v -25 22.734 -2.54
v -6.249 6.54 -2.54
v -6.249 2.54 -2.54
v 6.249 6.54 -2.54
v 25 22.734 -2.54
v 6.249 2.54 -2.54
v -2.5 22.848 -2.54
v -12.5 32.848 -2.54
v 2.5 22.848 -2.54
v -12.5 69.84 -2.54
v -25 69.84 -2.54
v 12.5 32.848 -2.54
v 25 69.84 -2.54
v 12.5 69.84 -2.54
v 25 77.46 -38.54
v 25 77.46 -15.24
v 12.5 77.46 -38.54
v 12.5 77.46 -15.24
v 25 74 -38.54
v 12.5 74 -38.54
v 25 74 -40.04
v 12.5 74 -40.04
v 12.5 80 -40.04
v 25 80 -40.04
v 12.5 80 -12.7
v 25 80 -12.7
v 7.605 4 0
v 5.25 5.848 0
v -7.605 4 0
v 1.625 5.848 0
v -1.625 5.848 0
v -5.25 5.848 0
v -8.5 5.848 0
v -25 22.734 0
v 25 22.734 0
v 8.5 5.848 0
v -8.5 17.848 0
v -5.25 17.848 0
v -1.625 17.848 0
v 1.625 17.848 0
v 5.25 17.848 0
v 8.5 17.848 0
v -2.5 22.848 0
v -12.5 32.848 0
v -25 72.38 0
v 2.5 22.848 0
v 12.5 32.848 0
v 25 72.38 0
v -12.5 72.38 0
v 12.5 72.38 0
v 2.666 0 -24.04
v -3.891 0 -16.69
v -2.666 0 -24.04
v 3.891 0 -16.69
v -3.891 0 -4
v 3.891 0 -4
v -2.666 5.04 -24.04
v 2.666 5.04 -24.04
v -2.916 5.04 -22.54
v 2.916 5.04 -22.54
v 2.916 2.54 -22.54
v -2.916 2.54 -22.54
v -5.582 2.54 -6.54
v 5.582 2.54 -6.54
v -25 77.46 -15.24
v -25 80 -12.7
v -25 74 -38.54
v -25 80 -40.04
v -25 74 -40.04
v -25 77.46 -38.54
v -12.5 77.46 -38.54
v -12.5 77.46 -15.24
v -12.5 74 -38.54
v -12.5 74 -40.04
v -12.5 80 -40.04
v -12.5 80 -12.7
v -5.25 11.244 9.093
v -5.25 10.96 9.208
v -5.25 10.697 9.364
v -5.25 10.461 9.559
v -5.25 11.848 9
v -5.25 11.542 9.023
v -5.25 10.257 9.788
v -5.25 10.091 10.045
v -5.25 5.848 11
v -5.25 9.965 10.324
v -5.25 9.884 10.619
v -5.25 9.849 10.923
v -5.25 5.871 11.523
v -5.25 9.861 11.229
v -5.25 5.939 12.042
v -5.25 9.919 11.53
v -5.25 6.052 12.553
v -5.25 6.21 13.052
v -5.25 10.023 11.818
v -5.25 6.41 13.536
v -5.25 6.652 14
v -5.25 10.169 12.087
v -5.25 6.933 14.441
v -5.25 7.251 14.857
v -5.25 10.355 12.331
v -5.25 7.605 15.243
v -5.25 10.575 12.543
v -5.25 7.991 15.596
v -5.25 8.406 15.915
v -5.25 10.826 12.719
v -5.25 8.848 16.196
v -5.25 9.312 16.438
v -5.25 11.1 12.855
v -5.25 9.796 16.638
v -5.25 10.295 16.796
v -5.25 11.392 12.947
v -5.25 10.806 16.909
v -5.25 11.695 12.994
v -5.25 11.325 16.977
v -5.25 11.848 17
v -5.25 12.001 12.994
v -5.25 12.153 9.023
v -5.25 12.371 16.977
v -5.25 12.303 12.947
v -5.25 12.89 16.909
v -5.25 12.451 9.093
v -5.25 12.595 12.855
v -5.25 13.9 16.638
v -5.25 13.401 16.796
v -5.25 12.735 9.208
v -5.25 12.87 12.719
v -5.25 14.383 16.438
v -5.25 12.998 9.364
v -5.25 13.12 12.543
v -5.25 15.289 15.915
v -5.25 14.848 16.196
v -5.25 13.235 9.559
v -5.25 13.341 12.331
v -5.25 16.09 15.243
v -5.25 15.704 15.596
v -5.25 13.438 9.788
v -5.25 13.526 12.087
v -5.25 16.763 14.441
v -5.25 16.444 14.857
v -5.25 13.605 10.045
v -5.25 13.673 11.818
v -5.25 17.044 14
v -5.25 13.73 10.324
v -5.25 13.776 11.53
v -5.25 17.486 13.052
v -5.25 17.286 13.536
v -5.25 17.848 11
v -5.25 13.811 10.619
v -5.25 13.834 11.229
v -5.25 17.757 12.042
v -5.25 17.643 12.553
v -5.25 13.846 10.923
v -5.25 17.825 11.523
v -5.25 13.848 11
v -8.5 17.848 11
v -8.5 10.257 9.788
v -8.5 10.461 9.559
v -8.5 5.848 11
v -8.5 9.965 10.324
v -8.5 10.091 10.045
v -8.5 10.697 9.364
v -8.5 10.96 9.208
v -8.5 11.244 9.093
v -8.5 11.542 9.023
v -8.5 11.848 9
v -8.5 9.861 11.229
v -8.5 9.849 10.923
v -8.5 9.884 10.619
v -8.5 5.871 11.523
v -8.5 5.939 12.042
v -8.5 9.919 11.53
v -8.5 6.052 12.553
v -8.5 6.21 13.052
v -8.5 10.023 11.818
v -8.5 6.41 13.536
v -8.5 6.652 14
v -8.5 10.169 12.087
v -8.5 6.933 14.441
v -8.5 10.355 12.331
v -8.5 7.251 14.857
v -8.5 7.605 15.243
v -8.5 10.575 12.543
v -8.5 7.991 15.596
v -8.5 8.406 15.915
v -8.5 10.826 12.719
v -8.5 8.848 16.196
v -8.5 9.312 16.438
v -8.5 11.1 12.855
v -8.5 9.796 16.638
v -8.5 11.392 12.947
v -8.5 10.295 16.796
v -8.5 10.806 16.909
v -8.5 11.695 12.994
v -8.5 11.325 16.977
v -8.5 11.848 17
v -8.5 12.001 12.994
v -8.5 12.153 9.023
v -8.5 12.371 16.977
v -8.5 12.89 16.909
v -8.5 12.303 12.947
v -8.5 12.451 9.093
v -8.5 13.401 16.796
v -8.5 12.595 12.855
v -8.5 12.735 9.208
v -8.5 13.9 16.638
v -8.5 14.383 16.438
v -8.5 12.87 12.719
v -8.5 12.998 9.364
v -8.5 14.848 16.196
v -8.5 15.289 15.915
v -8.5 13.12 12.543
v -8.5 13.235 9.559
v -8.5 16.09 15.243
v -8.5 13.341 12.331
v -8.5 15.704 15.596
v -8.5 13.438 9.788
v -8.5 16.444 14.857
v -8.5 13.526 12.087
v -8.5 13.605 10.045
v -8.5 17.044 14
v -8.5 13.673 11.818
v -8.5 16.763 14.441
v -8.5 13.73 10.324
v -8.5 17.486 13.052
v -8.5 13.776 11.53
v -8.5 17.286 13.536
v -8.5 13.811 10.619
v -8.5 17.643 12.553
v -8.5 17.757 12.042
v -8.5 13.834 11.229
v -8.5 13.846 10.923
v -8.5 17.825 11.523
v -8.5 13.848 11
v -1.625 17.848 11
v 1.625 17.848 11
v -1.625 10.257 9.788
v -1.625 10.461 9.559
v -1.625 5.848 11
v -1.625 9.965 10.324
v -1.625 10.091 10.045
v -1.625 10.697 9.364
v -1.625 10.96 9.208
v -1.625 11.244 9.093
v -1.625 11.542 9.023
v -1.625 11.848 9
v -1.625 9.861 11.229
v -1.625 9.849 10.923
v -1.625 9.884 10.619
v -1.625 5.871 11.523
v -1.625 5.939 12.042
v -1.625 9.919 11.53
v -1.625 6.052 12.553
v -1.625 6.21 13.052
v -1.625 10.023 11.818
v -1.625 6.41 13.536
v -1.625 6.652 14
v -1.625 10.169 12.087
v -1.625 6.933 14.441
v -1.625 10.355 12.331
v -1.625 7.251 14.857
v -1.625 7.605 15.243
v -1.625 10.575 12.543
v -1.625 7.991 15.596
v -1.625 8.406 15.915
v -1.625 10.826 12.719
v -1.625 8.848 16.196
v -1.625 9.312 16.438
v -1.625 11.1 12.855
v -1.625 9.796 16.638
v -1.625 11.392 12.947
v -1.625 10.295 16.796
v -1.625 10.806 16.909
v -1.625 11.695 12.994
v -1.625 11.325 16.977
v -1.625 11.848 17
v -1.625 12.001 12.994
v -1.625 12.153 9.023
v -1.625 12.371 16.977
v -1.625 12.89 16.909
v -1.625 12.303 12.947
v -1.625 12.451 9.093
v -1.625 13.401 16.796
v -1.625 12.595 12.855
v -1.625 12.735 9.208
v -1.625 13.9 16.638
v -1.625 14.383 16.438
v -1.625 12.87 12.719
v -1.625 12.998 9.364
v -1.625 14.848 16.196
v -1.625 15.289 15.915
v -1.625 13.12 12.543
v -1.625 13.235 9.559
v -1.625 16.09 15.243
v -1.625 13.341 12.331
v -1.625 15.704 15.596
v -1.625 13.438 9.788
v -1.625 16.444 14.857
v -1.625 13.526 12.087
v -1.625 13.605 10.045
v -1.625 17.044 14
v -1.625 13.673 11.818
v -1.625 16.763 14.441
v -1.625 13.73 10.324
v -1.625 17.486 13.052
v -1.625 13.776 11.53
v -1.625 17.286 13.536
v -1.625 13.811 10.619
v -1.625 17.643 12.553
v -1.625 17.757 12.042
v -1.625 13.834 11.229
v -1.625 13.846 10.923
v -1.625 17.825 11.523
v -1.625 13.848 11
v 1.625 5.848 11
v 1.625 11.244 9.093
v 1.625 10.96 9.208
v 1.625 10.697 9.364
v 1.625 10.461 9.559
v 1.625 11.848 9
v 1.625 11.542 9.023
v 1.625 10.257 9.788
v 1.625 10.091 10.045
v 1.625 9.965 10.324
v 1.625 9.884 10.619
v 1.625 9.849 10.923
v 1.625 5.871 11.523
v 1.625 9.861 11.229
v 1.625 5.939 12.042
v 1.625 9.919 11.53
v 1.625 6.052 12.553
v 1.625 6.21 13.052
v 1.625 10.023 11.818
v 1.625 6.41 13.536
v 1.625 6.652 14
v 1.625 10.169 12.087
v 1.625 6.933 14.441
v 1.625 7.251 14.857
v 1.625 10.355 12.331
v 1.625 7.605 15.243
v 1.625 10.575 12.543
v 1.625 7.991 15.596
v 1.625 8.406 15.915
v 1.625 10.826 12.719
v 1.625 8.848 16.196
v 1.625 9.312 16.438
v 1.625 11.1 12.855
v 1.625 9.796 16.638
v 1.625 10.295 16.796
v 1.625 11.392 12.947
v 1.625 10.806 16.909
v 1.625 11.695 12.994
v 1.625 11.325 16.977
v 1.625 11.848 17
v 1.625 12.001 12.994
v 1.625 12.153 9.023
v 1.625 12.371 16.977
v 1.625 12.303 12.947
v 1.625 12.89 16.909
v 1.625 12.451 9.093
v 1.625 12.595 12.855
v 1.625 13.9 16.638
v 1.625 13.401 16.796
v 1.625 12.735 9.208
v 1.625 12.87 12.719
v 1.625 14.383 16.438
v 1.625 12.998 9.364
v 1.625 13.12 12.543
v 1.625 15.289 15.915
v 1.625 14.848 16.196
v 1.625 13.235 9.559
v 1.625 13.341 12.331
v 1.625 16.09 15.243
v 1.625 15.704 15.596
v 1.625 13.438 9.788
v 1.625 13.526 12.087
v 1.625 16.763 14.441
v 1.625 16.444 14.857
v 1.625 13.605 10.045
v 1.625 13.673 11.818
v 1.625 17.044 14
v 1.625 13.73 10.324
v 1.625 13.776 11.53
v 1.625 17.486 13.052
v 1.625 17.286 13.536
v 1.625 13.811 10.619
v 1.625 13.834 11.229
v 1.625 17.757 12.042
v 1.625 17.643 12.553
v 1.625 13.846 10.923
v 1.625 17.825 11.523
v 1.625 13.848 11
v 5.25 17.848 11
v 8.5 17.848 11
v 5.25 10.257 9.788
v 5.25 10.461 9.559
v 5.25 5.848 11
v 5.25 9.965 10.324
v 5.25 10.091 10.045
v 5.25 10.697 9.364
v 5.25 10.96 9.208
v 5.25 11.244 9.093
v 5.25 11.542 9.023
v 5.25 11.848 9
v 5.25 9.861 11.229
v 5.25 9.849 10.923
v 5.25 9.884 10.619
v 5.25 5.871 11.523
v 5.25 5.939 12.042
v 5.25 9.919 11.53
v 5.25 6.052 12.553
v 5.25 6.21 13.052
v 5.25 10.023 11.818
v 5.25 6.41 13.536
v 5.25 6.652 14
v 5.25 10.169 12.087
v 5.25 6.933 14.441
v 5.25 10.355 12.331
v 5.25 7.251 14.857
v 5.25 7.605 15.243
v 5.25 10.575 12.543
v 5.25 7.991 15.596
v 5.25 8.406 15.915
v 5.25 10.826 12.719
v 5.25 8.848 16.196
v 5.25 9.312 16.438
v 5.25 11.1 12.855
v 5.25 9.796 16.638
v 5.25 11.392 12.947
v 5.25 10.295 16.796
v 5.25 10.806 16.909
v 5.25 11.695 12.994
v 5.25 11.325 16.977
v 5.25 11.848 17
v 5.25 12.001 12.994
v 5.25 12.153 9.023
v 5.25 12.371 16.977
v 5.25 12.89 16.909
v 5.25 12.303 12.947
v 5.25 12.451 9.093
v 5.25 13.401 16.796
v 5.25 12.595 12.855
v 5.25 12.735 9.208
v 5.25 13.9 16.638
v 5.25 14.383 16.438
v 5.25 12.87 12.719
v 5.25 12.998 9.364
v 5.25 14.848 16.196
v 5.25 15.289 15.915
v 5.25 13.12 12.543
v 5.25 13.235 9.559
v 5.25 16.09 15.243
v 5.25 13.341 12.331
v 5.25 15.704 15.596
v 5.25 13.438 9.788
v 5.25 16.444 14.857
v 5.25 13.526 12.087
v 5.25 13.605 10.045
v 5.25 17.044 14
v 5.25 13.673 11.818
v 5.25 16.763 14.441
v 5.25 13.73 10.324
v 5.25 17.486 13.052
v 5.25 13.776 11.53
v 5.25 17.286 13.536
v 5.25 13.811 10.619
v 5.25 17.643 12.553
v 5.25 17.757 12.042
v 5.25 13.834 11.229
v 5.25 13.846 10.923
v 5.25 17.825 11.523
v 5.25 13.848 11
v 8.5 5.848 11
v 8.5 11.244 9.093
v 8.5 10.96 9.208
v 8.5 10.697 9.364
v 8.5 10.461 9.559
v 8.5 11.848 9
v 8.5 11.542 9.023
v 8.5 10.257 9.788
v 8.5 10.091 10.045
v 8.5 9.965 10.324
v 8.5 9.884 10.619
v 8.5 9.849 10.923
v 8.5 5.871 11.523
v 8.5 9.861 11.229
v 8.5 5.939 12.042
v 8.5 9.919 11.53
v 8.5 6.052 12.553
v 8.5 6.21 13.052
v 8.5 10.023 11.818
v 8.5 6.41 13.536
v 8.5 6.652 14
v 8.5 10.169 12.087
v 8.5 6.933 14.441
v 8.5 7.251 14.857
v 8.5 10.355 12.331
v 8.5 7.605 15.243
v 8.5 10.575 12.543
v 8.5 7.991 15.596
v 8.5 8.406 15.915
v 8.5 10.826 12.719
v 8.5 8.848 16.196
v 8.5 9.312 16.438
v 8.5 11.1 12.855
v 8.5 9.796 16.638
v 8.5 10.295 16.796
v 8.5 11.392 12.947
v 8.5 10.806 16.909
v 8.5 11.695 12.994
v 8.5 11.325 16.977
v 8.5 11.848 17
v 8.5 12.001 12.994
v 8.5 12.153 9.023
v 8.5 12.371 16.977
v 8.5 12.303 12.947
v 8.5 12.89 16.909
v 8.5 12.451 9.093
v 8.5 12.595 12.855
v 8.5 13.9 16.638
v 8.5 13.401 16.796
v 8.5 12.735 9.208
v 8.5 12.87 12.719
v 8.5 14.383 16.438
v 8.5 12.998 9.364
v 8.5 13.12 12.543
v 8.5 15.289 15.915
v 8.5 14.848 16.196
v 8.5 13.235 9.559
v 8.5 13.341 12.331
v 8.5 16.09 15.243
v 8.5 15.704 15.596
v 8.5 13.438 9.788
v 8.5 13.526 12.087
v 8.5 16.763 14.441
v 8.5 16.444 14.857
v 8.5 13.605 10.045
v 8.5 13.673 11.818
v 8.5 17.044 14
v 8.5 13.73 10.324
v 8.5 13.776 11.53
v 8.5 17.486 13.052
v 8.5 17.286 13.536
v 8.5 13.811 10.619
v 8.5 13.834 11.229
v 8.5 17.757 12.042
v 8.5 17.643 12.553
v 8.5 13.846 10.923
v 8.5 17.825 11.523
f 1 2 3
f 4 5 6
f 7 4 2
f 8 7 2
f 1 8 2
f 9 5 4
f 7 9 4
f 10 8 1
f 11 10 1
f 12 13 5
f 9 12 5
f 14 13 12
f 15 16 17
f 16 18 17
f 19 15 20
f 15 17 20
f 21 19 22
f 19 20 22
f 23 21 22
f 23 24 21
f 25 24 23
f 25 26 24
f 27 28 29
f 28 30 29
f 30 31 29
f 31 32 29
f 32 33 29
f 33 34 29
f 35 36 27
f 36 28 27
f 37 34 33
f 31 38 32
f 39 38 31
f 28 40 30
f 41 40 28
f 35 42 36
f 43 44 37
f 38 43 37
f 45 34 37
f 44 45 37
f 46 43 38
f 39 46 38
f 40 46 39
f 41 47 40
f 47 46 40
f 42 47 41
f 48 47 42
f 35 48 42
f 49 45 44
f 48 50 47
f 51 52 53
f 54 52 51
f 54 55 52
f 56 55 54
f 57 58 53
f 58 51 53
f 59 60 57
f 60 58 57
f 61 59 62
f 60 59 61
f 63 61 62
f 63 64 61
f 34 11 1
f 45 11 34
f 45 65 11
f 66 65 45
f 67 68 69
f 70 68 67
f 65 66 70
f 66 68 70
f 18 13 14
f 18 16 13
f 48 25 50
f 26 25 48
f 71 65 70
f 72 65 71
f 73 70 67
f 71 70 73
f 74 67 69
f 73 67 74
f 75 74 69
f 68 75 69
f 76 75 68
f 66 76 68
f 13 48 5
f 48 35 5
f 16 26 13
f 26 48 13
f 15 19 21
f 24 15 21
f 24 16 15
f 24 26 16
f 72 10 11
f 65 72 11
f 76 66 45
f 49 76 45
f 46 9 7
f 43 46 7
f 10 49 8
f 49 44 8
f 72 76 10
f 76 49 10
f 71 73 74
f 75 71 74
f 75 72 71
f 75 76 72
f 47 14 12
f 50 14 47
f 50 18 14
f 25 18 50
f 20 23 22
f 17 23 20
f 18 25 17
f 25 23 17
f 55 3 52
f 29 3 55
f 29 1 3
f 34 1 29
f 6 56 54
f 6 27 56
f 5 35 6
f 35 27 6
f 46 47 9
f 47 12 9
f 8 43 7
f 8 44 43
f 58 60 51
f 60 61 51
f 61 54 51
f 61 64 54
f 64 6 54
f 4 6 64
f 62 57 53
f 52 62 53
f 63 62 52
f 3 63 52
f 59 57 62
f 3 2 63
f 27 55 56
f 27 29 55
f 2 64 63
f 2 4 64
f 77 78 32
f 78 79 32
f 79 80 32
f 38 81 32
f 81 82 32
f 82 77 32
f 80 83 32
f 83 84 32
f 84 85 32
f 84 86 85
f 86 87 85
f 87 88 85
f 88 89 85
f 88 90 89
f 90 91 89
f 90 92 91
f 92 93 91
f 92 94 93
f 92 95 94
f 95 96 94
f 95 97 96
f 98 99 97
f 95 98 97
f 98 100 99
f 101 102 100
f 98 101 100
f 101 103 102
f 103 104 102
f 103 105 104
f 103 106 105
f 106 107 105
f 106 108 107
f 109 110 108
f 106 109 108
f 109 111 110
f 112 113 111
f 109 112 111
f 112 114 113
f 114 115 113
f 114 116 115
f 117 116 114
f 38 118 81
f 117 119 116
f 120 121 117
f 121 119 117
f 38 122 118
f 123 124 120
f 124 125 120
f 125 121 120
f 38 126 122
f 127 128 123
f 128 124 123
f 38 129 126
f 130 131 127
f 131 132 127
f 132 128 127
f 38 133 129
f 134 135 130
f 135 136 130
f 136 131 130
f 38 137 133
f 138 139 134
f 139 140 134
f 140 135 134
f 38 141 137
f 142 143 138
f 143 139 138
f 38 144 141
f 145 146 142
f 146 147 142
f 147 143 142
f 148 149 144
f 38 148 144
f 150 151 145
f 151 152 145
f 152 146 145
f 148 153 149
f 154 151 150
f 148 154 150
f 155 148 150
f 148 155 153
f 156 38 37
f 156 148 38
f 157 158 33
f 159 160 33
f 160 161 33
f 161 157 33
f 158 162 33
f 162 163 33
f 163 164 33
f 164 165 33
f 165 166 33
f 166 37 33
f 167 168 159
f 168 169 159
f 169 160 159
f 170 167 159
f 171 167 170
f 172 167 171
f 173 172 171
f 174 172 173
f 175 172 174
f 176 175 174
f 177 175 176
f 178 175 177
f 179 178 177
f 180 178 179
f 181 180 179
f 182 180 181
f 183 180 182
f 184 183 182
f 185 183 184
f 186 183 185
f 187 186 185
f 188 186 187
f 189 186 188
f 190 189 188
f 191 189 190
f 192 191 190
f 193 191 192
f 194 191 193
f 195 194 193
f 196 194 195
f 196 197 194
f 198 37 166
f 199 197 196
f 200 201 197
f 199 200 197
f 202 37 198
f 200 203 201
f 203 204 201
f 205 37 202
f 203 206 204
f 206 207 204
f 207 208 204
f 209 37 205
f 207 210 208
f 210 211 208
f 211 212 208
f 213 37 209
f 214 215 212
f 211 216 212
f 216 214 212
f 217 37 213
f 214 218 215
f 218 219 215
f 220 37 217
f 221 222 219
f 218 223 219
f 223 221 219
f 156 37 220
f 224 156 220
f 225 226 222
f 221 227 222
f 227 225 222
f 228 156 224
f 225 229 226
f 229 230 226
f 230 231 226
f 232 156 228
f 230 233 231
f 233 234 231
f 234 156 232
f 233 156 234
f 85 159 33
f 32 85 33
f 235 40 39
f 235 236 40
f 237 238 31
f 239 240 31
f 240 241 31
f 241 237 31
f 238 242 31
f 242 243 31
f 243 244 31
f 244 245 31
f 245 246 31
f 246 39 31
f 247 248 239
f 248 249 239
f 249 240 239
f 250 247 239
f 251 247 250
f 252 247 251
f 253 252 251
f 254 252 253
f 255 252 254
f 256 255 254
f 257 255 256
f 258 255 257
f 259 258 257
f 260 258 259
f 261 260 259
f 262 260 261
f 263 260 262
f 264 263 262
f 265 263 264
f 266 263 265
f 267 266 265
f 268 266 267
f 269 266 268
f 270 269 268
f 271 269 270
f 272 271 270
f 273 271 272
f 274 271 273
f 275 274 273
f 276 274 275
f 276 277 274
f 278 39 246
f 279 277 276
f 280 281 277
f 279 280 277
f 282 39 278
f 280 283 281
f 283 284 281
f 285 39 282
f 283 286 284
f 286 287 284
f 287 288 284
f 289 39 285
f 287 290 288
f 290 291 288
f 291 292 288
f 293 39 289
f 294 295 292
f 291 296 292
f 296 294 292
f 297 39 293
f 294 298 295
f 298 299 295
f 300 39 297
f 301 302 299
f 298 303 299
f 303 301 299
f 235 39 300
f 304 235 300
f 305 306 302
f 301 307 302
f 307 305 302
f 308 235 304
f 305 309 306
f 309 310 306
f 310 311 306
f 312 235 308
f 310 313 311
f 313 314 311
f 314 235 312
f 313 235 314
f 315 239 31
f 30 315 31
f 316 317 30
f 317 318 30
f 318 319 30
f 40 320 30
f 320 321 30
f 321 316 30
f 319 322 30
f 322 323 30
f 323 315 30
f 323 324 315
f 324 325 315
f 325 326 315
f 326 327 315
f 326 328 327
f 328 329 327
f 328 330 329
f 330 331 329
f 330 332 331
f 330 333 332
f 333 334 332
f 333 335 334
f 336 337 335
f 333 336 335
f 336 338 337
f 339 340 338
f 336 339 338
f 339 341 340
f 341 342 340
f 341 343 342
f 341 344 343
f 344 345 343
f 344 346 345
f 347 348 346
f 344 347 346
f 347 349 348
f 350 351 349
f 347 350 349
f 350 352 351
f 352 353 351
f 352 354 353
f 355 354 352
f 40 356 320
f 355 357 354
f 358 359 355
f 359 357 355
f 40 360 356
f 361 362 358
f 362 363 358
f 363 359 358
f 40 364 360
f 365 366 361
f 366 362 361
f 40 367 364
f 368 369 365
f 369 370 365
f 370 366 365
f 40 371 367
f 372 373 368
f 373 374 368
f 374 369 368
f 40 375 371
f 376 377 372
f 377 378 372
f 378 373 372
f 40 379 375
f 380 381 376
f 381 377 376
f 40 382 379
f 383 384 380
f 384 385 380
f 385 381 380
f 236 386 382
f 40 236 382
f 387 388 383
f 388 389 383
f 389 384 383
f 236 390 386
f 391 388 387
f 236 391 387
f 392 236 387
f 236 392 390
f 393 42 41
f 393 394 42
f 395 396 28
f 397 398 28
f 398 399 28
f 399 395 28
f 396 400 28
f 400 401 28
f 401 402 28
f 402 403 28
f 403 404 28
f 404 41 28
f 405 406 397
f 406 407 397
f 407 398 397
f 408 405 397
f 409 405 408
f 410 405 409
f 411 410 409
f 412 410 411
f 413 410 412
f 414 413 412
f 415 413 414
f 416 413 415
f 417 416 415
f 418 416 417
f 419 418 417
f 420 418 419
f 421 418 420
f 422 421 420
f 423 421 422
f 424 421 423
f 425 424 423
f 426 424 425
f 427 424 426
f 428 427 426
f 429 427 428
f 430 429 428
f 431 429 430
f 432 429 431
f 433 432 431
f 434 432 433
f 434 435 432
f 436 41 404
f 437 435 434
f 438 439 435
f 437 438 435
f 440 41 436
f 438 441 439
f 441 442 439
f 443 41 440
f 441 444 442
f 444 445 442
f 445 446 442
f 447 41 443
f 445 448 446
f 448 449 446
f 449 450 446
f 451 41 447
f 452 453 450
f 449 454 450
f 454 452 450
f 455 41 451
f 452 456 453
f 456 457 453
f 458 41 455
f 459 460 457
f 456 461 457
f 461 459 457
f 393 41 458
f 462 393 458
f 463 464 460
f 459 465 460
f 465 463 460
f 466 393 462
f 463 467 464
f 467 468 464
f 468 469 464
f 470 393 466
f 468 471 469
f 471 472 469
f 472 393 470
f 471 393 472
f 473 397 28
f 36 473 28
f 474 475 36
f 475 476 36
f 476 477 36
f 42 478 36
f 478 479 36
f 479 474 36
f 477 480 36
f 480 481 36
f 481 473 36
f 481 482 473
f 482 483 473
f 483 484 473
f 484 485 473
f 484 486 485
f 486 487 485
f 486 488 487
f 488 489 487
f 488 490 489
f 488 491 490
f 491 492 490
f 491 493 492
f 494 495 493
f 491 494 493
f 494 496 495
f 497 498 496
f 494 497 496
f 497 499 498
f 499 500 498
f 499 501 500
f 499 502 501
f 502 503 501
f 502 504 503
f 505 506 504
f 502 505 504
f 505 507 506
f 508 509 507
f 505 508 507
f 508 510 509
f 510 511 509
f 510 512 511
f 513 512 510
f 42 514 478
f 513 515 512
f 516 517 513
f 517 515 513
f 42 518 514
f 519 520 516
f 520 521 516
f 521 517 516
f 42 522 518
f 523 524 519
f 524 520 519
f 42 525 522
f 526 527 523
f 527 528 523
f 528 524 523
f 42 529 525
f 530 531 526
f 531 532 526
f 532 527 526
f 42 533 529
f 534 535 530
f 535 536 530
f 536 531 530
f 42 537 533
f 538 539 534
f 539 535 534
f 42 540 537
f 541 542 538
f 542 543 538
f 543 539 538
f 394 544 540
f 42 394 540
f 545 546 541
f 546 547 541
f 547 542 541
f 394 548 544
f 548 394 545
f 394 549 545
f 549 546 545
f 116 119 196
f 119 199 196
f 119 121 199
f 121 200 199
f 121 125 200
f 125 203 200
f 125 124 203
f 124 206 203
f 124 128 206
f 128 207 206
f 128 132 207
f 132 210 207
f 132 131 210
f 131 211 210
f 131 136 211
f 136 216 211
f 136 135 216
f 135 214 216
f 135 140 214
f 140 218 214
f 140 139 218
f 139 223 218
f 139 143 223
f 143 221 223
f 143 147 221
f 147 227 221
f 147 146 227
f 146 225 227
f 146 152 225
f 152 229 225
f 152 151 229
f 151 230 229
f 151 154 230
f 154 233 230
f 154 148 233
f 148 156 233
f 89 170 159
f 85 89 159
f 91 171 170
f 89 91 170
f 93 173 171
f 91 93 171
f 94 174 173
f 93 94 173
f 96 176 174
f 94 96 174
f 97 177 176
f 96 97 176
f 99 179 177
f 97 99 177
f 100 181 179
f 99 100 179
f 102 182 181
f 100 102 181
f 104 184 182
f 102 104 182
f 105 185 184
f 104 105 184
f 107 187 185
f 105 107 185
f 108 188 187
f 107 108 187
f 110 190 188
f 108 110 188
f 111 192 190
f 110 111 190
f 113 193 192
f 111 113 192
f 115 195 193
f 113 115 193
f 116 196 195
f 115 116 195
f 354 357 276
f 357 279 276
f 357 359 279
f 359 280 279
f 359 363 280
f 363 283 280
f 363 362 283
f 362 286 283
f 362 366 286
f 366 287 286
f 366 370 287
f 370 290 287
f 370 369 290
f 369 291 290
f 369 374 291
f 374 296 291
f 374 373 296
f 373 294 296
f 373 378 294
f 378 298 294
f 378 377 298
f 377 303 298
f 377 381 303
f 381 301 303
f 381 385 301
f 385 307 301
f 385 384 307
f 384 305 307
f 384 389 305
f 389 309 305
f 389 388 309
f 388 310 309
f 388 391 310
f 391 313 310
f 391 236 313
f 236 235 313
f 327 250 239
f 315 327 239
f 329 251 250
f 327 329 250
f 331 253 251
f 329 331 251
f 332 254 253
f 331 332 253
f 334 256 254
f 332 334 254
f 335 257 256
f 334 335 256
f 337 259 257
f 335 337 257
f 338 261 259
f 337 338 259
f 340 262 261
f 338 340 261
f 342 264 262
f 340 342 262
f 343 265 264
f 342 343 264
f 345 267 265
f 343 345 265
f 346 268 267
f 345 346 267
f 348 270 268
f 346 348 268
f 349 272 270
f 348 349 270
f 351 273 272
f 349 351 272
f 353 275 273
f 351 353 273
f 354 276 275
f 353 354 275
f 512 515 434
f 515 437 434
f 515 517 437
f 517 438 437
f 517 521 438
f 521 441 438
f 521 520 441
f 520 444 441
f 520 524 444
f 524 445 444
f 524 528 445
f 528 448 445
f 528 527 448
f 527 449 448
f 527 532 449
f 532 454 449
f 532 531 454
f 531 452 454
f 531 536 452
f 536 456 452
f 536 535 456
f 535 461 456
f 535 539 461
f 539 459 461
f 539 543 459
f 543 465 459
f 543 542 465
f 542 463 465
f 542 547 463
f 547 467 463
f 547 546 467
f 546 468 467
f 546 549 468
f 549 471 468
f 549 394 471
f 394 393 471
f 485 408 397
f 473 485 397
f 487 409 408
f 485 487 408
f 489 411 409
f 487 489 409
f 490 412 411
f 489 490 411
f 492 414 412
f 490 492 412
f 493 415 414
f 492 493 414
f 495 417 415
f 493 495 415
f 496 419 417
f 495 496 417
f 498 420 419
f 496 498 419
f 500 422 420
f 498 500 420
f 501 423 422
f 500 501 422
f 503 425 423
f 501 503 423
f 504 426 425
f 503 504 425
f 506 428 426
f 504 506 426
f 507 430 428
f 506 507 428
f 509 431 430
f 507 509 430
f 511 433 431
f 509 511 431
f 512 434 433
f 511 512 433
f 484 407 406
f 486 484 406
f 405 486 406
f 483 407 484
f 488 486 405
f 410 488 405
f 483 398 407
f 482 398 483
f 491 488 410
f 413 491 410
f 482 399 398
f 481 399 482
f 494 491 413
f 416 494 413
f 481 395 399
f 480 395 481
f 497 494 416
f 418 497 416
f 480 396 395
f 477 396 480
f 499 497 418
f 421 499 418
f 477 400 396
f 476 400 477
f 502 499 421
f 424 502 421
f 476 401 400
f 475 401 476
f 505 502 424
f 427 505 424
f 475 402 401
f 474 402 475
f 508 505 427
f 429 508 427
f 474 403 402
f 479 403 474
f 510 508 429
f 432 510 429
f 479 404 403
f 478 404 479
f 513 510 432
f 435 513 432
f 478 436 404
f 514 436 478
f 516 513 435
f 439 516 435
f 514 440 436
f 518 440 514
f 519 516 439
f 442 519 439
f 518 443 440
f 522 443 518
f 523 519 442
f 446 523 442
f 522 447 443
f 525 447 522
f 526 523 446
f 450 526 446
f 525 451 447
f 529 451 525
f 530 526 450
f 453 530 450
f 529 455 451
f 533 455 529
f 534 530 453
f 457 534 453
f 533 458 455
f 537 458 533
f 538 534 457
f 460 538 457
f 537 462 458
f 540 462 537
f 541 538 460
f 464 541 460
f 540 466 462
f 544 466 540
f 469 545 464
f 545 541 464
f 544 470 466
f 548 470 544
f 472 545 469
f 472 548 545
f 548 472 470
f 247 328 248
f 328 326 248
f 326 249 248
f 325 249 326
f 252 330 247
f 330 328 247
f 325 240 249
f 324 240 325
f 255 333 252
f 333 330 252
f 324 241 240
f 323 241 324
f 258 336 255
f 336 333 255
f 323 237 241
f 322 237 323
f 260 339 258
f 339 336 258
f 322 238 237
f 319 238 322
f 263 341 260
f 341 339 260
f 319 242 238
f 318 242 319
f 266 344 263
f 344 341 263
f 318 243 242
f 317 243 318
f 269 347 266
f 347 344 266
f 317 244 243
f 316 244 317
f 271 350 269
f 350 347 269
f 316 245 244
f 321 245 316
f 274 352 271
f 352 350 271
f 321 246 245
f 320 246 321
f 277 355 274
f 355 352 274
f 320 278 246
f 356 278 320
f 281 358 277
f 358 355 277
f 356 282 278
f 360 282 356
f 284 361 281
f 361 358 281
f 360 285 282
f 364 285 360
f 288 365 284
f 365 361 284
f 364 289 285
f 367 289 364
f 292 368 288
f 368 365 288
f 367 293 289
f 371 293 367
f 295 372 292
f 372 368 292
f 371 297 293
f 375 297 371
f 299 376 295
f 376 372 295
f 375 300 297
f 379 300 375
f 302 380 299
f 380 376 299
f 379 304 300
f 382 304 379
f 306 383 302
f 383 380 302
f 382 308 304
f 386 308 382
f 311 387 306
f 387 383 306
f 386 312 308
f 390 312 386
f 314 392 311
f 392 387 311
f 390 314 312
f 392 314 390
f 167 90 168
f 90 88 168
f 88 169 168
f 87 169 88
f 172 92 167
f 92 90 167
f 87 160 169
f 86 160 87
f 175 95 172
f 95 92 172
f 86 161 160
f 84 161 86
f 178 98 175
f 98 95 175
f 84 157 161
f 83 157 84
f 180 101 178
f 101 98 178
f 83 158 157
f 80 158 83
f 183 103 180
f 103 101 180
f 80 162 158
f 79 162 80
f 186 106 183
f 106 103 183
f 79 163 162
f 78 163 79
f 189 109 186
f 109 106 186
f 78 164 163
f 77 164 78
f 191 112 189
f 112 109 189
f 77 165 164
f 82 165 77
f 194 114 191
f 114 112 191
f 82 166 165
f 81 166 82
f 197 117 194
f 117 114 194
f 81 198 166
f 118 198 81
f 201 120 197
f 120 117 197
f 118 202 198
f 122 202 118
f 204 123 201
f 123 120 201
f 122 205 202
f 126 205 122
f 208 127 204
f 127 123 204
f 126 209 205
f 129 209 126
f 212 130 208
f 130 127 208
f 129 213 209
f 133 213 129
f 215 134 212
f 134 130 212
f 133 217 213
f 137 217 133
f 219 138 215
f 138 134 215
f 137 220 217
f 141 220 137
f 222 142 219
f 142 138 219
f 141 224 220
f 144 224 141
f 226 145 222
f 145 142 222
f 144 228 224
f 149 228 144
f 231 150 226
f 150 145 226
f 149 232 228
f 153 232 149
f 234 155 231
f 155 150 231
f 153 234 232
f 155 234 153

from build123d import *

# Parameters (mm, degrees)
BOSS_EXTRUDE1_DEPTH = 25
CHAMFER1_SIZE       = 7.62
CHAMFER1_SIZE2      = 12.7
CHAMFER2_SIZE       = 12.7
CHAMFER2_SIZE2      = 7.62
SKETCH2_W           = 12.5
SKETCH2_H           = 49.53232107
SKETCH2_H_2         = 15.55880868
CUT_EXTRUDE1_DEPTH  = 93.888113341
CHAMFER3_SIZE       = 10
CUT_EXTRUDE2_DEPTH  = 10
CHAMFER4_SIZE       = 4
SKETCH4_W           = 3.25
SKETCH4_H           = 12
SKETCH4_W_2         = 1.625
BOSS_EXTRUDE2_DEPTH = 17
FILLET1_R           = 6
SKETCH5_R           = 2
CUT_EXTRUDE3_DEPTH  = 96.527229626


# Some blends are built 0.0001 mm under size
with BuildPart() as part:
    # Sketch1 → Boss-Extrude1 (new, symmetric)
    with BuildSketch(Plane(origin=(0, 0, 0), x_dir=(0, 0, -1), z_dir=(1, 0, 0))):
        Polygon((2.54, 77.46), (38.54, 77.46), (38.54, 74), (40.04, 74), (40.04, 80), (0, 80), (0, 0), (24.04, 0), (24.04, 5.04), (22.54, 5.04), (22.54, 2.54), (2.54, 2.54), align=None)
    extrude(amount=BOSS_EXTRUDE1_DEPTH, both=True)

    # Chamfer1
    chamfer1_edges = [part.edges().sort_by_distance(p)[0] for p in [
        (0, 77.46, -2.54),
    ]]
    chamfer1_side = [part.faces().sort_by_distance(p)[0] for p in [
        (0, 40, -2.54),
    ]]
    chamfer(chamfer1_edges, length=CHAMFER1_SIZE, length2=CHAMFER1_SIZE2, reference=chamfer1_side[0])

    # Chamfer2
    chamfer2_edges = [part.edges().sort_by_distance(p)[0] for p in [
        (0, 80, 0),
    ]]
    chamfer2_side = [part.faces().sort_by_distance(p)[0] for p in [
        (0, 80, -20.02),
    ]]
    chamfer(chamfer2_edges, length=CHAMFER2_SIZE, length2=CHAMFER2_SIZE2, reference=chamfer2_side[0])

    # Sketch2 → Cut-Extrude1 (cut, through all)
    with BuildSketch(Plane.XY):
        Polygon((25, 0), (3.890569181, 0), (3.890569181, -6.225652432), (33.580070914, -6.225652432), (33.580070914, 22.733692281), (25, 22.733692281), align=None)
        Polygon((25, 22.733692281), (3.890569181, 0), (25, 0), align=None)
        with Locations((-6.25, 47.613839465)):
            Rectangle(SKETCH2_W, SKETCH2_H)
        with Locations((6.25, 47.613839465)):
            Rectangle(SKETCH2_W, SKETCH2_H)
        with Locations((6.25, 80.15940434)):
            Rectangle(SKETCH2_W, SKETCH2_H_2)
        with Locations((-6.25, 80.15940434)):
            Rectangle(SKETCH2_W, SKETCH2_H_2)
        Polygon((-33.580070914, 22.733692281), (-25, 22.733692281), (-3.890569181, 0), (-3.890569181, -6.225652432), (-33.580070914, -6.225652432), align=None)
    extrude(amount=-CUT_EXTRUDE1_DEPTH, mode=Mode.SUBTRACT)

    # Chamfer3
    chamfer3_edges = [part.edges().sort_by_distance(p)[0] for p in [
        (12.5, 22.84767893, -1.27),
        (-12.5, 22.84767893, -1.27),
    ]]
    chamfer(chamfer3_edges, length=CHAMFER3_SIZE)

    # Sketch3 → Cut-Extrude2 (cut)
    with BuildSketch(Plane.XZ):
        Polygon((6.24909298, -2.54), (2.09252957, -27.477990004), (-2.09252957, -27.477990004), (-6.24909298, -2.54), (-9.067628135, -2.54), (-9.067628135, -35.311562239), (9.067628135, -35.311562239), (9.067628135, -2.54), align=None)
    extrude(amount=-CUT_EXTRUDE2_DEPTH, mode=Mode.SUBTRACT)

    # Chamfer4
    # the kernel refuses this chamfer: 4 mm, written as the material it adds along each edge
    with BuildSketch(Plane(origin=(16.535824932, 2.54, -2.54), x_dir=(0, 0.9996219169112968, 0.027495876610586494), z_dir=(-1, 0, 0))) as chamfer4_piece_1_section:
        Polygon((CHAMFER4_SIZE * 0.999621916911, CHAMFER4_SIZE * 0.0274958766106), (-CHAMFER4_SIZE * 0.0274958766106, CHAMFER4_SIZE * 0.999621916911), (0, 0), align=None)
    chamfer4_piece_1 = extrude(amount=33.071649864, mode=Mode.PRIVATE)
    chamfer4_piece_1 = split(chamfer4_piece_1, bisect_by=Plane(origin=(-5.870802052, 3.874203196, -4.809619019), z_dir=(0.9863924373611449, 0, 0.16440790588271567)), keep=Keep.TOP, mode=Mode.PRIVATE)
    chamfer4_piece_1 = split(chamfer4_piece_1, bisect_by=Plane(origin=(5.870802052, 3.874203196, -4.809619019), z_dir=(-0.9863924373611449, 0, 0.16440790588271567)), keep=Keep.TOP, mode=Mode.PRIVATE)
    add(chamfer4_piece_1)
    # the kernel refuses this chamfer: 4 mm, written as the material it takes off along each edge
    with BuildSketch(Plane(origin=(-14.177301133, 0, 0), x_dir=(0, 0.9996219169112968, 0.027495876610586372), z_dir=(1, 0, 0))) as chamfer4_2_piece_1:
        Polygon((CHAMFER4_SIZE * 0.999621916911, -CHAMFER4_SIZE * 0.0274958766106), (-CHAMFER4_SIZE * 0.0274958766106, -CHAMFER4_SIZE * 0.999621916911), (0, 0), align=None)
    extrude(amount=28.354602266, mode=Mode.SUBTRACT)

    # Sketch4 → Boss-Extrude2 (add)
    with BuildSketch(Plane.XY):
        with Locations((-6.875, 11.84767893)):
            Rectangle(SKETCH4_W, SKETCH4_H)
        with Locations((0.8125, 11.84767893)):
            Rectangle(SKETCH4_W_2, SKETCH4_H)
        with Locations((-0.8125, 11.84767893)):
            Rectangle(SKETCH4_W_2, SKETCH4_H)
        with Locations((6.875, 11.84767893)):
            Rectangle(SKETCH4_W, SKETCH4_H)
    extrude(amount=BOSS_EXTRUDE2_DEPTH)

    # Fillet1
    fillet1_edges = [part.edges().sort_by_distance(p)[0] for p in [
        (-6.875, 5.84767893, 17),
        (0, 5.84767893, 17),
        (6.875, 5.84767893, 17),
        (6.875, 17.84767893, 17),
        (0, 17.84767893, 17),
        (-6.875, 17.84767893, 17),
    ]]
    fillet(fillet1_edges, radius=FILLET1_R - 0.0001)  # a hair under: the kernel refuses the full size

    # Sketch5 → Cut-Extrude3 (cut, through all)
    with BuildSketch(Plane(origin=(8.5, 0, 0), x_dir=(0, 0, -1), z_dir=(1, 0, 0))):
        with Locations((-11, 11.84767893)):
            Circle(SKETCH5_R)
    extrude(amount=-CUT_EXTRUDE3_DEPTH, mode=Mode.SUBTRACT)


solid = part.part
